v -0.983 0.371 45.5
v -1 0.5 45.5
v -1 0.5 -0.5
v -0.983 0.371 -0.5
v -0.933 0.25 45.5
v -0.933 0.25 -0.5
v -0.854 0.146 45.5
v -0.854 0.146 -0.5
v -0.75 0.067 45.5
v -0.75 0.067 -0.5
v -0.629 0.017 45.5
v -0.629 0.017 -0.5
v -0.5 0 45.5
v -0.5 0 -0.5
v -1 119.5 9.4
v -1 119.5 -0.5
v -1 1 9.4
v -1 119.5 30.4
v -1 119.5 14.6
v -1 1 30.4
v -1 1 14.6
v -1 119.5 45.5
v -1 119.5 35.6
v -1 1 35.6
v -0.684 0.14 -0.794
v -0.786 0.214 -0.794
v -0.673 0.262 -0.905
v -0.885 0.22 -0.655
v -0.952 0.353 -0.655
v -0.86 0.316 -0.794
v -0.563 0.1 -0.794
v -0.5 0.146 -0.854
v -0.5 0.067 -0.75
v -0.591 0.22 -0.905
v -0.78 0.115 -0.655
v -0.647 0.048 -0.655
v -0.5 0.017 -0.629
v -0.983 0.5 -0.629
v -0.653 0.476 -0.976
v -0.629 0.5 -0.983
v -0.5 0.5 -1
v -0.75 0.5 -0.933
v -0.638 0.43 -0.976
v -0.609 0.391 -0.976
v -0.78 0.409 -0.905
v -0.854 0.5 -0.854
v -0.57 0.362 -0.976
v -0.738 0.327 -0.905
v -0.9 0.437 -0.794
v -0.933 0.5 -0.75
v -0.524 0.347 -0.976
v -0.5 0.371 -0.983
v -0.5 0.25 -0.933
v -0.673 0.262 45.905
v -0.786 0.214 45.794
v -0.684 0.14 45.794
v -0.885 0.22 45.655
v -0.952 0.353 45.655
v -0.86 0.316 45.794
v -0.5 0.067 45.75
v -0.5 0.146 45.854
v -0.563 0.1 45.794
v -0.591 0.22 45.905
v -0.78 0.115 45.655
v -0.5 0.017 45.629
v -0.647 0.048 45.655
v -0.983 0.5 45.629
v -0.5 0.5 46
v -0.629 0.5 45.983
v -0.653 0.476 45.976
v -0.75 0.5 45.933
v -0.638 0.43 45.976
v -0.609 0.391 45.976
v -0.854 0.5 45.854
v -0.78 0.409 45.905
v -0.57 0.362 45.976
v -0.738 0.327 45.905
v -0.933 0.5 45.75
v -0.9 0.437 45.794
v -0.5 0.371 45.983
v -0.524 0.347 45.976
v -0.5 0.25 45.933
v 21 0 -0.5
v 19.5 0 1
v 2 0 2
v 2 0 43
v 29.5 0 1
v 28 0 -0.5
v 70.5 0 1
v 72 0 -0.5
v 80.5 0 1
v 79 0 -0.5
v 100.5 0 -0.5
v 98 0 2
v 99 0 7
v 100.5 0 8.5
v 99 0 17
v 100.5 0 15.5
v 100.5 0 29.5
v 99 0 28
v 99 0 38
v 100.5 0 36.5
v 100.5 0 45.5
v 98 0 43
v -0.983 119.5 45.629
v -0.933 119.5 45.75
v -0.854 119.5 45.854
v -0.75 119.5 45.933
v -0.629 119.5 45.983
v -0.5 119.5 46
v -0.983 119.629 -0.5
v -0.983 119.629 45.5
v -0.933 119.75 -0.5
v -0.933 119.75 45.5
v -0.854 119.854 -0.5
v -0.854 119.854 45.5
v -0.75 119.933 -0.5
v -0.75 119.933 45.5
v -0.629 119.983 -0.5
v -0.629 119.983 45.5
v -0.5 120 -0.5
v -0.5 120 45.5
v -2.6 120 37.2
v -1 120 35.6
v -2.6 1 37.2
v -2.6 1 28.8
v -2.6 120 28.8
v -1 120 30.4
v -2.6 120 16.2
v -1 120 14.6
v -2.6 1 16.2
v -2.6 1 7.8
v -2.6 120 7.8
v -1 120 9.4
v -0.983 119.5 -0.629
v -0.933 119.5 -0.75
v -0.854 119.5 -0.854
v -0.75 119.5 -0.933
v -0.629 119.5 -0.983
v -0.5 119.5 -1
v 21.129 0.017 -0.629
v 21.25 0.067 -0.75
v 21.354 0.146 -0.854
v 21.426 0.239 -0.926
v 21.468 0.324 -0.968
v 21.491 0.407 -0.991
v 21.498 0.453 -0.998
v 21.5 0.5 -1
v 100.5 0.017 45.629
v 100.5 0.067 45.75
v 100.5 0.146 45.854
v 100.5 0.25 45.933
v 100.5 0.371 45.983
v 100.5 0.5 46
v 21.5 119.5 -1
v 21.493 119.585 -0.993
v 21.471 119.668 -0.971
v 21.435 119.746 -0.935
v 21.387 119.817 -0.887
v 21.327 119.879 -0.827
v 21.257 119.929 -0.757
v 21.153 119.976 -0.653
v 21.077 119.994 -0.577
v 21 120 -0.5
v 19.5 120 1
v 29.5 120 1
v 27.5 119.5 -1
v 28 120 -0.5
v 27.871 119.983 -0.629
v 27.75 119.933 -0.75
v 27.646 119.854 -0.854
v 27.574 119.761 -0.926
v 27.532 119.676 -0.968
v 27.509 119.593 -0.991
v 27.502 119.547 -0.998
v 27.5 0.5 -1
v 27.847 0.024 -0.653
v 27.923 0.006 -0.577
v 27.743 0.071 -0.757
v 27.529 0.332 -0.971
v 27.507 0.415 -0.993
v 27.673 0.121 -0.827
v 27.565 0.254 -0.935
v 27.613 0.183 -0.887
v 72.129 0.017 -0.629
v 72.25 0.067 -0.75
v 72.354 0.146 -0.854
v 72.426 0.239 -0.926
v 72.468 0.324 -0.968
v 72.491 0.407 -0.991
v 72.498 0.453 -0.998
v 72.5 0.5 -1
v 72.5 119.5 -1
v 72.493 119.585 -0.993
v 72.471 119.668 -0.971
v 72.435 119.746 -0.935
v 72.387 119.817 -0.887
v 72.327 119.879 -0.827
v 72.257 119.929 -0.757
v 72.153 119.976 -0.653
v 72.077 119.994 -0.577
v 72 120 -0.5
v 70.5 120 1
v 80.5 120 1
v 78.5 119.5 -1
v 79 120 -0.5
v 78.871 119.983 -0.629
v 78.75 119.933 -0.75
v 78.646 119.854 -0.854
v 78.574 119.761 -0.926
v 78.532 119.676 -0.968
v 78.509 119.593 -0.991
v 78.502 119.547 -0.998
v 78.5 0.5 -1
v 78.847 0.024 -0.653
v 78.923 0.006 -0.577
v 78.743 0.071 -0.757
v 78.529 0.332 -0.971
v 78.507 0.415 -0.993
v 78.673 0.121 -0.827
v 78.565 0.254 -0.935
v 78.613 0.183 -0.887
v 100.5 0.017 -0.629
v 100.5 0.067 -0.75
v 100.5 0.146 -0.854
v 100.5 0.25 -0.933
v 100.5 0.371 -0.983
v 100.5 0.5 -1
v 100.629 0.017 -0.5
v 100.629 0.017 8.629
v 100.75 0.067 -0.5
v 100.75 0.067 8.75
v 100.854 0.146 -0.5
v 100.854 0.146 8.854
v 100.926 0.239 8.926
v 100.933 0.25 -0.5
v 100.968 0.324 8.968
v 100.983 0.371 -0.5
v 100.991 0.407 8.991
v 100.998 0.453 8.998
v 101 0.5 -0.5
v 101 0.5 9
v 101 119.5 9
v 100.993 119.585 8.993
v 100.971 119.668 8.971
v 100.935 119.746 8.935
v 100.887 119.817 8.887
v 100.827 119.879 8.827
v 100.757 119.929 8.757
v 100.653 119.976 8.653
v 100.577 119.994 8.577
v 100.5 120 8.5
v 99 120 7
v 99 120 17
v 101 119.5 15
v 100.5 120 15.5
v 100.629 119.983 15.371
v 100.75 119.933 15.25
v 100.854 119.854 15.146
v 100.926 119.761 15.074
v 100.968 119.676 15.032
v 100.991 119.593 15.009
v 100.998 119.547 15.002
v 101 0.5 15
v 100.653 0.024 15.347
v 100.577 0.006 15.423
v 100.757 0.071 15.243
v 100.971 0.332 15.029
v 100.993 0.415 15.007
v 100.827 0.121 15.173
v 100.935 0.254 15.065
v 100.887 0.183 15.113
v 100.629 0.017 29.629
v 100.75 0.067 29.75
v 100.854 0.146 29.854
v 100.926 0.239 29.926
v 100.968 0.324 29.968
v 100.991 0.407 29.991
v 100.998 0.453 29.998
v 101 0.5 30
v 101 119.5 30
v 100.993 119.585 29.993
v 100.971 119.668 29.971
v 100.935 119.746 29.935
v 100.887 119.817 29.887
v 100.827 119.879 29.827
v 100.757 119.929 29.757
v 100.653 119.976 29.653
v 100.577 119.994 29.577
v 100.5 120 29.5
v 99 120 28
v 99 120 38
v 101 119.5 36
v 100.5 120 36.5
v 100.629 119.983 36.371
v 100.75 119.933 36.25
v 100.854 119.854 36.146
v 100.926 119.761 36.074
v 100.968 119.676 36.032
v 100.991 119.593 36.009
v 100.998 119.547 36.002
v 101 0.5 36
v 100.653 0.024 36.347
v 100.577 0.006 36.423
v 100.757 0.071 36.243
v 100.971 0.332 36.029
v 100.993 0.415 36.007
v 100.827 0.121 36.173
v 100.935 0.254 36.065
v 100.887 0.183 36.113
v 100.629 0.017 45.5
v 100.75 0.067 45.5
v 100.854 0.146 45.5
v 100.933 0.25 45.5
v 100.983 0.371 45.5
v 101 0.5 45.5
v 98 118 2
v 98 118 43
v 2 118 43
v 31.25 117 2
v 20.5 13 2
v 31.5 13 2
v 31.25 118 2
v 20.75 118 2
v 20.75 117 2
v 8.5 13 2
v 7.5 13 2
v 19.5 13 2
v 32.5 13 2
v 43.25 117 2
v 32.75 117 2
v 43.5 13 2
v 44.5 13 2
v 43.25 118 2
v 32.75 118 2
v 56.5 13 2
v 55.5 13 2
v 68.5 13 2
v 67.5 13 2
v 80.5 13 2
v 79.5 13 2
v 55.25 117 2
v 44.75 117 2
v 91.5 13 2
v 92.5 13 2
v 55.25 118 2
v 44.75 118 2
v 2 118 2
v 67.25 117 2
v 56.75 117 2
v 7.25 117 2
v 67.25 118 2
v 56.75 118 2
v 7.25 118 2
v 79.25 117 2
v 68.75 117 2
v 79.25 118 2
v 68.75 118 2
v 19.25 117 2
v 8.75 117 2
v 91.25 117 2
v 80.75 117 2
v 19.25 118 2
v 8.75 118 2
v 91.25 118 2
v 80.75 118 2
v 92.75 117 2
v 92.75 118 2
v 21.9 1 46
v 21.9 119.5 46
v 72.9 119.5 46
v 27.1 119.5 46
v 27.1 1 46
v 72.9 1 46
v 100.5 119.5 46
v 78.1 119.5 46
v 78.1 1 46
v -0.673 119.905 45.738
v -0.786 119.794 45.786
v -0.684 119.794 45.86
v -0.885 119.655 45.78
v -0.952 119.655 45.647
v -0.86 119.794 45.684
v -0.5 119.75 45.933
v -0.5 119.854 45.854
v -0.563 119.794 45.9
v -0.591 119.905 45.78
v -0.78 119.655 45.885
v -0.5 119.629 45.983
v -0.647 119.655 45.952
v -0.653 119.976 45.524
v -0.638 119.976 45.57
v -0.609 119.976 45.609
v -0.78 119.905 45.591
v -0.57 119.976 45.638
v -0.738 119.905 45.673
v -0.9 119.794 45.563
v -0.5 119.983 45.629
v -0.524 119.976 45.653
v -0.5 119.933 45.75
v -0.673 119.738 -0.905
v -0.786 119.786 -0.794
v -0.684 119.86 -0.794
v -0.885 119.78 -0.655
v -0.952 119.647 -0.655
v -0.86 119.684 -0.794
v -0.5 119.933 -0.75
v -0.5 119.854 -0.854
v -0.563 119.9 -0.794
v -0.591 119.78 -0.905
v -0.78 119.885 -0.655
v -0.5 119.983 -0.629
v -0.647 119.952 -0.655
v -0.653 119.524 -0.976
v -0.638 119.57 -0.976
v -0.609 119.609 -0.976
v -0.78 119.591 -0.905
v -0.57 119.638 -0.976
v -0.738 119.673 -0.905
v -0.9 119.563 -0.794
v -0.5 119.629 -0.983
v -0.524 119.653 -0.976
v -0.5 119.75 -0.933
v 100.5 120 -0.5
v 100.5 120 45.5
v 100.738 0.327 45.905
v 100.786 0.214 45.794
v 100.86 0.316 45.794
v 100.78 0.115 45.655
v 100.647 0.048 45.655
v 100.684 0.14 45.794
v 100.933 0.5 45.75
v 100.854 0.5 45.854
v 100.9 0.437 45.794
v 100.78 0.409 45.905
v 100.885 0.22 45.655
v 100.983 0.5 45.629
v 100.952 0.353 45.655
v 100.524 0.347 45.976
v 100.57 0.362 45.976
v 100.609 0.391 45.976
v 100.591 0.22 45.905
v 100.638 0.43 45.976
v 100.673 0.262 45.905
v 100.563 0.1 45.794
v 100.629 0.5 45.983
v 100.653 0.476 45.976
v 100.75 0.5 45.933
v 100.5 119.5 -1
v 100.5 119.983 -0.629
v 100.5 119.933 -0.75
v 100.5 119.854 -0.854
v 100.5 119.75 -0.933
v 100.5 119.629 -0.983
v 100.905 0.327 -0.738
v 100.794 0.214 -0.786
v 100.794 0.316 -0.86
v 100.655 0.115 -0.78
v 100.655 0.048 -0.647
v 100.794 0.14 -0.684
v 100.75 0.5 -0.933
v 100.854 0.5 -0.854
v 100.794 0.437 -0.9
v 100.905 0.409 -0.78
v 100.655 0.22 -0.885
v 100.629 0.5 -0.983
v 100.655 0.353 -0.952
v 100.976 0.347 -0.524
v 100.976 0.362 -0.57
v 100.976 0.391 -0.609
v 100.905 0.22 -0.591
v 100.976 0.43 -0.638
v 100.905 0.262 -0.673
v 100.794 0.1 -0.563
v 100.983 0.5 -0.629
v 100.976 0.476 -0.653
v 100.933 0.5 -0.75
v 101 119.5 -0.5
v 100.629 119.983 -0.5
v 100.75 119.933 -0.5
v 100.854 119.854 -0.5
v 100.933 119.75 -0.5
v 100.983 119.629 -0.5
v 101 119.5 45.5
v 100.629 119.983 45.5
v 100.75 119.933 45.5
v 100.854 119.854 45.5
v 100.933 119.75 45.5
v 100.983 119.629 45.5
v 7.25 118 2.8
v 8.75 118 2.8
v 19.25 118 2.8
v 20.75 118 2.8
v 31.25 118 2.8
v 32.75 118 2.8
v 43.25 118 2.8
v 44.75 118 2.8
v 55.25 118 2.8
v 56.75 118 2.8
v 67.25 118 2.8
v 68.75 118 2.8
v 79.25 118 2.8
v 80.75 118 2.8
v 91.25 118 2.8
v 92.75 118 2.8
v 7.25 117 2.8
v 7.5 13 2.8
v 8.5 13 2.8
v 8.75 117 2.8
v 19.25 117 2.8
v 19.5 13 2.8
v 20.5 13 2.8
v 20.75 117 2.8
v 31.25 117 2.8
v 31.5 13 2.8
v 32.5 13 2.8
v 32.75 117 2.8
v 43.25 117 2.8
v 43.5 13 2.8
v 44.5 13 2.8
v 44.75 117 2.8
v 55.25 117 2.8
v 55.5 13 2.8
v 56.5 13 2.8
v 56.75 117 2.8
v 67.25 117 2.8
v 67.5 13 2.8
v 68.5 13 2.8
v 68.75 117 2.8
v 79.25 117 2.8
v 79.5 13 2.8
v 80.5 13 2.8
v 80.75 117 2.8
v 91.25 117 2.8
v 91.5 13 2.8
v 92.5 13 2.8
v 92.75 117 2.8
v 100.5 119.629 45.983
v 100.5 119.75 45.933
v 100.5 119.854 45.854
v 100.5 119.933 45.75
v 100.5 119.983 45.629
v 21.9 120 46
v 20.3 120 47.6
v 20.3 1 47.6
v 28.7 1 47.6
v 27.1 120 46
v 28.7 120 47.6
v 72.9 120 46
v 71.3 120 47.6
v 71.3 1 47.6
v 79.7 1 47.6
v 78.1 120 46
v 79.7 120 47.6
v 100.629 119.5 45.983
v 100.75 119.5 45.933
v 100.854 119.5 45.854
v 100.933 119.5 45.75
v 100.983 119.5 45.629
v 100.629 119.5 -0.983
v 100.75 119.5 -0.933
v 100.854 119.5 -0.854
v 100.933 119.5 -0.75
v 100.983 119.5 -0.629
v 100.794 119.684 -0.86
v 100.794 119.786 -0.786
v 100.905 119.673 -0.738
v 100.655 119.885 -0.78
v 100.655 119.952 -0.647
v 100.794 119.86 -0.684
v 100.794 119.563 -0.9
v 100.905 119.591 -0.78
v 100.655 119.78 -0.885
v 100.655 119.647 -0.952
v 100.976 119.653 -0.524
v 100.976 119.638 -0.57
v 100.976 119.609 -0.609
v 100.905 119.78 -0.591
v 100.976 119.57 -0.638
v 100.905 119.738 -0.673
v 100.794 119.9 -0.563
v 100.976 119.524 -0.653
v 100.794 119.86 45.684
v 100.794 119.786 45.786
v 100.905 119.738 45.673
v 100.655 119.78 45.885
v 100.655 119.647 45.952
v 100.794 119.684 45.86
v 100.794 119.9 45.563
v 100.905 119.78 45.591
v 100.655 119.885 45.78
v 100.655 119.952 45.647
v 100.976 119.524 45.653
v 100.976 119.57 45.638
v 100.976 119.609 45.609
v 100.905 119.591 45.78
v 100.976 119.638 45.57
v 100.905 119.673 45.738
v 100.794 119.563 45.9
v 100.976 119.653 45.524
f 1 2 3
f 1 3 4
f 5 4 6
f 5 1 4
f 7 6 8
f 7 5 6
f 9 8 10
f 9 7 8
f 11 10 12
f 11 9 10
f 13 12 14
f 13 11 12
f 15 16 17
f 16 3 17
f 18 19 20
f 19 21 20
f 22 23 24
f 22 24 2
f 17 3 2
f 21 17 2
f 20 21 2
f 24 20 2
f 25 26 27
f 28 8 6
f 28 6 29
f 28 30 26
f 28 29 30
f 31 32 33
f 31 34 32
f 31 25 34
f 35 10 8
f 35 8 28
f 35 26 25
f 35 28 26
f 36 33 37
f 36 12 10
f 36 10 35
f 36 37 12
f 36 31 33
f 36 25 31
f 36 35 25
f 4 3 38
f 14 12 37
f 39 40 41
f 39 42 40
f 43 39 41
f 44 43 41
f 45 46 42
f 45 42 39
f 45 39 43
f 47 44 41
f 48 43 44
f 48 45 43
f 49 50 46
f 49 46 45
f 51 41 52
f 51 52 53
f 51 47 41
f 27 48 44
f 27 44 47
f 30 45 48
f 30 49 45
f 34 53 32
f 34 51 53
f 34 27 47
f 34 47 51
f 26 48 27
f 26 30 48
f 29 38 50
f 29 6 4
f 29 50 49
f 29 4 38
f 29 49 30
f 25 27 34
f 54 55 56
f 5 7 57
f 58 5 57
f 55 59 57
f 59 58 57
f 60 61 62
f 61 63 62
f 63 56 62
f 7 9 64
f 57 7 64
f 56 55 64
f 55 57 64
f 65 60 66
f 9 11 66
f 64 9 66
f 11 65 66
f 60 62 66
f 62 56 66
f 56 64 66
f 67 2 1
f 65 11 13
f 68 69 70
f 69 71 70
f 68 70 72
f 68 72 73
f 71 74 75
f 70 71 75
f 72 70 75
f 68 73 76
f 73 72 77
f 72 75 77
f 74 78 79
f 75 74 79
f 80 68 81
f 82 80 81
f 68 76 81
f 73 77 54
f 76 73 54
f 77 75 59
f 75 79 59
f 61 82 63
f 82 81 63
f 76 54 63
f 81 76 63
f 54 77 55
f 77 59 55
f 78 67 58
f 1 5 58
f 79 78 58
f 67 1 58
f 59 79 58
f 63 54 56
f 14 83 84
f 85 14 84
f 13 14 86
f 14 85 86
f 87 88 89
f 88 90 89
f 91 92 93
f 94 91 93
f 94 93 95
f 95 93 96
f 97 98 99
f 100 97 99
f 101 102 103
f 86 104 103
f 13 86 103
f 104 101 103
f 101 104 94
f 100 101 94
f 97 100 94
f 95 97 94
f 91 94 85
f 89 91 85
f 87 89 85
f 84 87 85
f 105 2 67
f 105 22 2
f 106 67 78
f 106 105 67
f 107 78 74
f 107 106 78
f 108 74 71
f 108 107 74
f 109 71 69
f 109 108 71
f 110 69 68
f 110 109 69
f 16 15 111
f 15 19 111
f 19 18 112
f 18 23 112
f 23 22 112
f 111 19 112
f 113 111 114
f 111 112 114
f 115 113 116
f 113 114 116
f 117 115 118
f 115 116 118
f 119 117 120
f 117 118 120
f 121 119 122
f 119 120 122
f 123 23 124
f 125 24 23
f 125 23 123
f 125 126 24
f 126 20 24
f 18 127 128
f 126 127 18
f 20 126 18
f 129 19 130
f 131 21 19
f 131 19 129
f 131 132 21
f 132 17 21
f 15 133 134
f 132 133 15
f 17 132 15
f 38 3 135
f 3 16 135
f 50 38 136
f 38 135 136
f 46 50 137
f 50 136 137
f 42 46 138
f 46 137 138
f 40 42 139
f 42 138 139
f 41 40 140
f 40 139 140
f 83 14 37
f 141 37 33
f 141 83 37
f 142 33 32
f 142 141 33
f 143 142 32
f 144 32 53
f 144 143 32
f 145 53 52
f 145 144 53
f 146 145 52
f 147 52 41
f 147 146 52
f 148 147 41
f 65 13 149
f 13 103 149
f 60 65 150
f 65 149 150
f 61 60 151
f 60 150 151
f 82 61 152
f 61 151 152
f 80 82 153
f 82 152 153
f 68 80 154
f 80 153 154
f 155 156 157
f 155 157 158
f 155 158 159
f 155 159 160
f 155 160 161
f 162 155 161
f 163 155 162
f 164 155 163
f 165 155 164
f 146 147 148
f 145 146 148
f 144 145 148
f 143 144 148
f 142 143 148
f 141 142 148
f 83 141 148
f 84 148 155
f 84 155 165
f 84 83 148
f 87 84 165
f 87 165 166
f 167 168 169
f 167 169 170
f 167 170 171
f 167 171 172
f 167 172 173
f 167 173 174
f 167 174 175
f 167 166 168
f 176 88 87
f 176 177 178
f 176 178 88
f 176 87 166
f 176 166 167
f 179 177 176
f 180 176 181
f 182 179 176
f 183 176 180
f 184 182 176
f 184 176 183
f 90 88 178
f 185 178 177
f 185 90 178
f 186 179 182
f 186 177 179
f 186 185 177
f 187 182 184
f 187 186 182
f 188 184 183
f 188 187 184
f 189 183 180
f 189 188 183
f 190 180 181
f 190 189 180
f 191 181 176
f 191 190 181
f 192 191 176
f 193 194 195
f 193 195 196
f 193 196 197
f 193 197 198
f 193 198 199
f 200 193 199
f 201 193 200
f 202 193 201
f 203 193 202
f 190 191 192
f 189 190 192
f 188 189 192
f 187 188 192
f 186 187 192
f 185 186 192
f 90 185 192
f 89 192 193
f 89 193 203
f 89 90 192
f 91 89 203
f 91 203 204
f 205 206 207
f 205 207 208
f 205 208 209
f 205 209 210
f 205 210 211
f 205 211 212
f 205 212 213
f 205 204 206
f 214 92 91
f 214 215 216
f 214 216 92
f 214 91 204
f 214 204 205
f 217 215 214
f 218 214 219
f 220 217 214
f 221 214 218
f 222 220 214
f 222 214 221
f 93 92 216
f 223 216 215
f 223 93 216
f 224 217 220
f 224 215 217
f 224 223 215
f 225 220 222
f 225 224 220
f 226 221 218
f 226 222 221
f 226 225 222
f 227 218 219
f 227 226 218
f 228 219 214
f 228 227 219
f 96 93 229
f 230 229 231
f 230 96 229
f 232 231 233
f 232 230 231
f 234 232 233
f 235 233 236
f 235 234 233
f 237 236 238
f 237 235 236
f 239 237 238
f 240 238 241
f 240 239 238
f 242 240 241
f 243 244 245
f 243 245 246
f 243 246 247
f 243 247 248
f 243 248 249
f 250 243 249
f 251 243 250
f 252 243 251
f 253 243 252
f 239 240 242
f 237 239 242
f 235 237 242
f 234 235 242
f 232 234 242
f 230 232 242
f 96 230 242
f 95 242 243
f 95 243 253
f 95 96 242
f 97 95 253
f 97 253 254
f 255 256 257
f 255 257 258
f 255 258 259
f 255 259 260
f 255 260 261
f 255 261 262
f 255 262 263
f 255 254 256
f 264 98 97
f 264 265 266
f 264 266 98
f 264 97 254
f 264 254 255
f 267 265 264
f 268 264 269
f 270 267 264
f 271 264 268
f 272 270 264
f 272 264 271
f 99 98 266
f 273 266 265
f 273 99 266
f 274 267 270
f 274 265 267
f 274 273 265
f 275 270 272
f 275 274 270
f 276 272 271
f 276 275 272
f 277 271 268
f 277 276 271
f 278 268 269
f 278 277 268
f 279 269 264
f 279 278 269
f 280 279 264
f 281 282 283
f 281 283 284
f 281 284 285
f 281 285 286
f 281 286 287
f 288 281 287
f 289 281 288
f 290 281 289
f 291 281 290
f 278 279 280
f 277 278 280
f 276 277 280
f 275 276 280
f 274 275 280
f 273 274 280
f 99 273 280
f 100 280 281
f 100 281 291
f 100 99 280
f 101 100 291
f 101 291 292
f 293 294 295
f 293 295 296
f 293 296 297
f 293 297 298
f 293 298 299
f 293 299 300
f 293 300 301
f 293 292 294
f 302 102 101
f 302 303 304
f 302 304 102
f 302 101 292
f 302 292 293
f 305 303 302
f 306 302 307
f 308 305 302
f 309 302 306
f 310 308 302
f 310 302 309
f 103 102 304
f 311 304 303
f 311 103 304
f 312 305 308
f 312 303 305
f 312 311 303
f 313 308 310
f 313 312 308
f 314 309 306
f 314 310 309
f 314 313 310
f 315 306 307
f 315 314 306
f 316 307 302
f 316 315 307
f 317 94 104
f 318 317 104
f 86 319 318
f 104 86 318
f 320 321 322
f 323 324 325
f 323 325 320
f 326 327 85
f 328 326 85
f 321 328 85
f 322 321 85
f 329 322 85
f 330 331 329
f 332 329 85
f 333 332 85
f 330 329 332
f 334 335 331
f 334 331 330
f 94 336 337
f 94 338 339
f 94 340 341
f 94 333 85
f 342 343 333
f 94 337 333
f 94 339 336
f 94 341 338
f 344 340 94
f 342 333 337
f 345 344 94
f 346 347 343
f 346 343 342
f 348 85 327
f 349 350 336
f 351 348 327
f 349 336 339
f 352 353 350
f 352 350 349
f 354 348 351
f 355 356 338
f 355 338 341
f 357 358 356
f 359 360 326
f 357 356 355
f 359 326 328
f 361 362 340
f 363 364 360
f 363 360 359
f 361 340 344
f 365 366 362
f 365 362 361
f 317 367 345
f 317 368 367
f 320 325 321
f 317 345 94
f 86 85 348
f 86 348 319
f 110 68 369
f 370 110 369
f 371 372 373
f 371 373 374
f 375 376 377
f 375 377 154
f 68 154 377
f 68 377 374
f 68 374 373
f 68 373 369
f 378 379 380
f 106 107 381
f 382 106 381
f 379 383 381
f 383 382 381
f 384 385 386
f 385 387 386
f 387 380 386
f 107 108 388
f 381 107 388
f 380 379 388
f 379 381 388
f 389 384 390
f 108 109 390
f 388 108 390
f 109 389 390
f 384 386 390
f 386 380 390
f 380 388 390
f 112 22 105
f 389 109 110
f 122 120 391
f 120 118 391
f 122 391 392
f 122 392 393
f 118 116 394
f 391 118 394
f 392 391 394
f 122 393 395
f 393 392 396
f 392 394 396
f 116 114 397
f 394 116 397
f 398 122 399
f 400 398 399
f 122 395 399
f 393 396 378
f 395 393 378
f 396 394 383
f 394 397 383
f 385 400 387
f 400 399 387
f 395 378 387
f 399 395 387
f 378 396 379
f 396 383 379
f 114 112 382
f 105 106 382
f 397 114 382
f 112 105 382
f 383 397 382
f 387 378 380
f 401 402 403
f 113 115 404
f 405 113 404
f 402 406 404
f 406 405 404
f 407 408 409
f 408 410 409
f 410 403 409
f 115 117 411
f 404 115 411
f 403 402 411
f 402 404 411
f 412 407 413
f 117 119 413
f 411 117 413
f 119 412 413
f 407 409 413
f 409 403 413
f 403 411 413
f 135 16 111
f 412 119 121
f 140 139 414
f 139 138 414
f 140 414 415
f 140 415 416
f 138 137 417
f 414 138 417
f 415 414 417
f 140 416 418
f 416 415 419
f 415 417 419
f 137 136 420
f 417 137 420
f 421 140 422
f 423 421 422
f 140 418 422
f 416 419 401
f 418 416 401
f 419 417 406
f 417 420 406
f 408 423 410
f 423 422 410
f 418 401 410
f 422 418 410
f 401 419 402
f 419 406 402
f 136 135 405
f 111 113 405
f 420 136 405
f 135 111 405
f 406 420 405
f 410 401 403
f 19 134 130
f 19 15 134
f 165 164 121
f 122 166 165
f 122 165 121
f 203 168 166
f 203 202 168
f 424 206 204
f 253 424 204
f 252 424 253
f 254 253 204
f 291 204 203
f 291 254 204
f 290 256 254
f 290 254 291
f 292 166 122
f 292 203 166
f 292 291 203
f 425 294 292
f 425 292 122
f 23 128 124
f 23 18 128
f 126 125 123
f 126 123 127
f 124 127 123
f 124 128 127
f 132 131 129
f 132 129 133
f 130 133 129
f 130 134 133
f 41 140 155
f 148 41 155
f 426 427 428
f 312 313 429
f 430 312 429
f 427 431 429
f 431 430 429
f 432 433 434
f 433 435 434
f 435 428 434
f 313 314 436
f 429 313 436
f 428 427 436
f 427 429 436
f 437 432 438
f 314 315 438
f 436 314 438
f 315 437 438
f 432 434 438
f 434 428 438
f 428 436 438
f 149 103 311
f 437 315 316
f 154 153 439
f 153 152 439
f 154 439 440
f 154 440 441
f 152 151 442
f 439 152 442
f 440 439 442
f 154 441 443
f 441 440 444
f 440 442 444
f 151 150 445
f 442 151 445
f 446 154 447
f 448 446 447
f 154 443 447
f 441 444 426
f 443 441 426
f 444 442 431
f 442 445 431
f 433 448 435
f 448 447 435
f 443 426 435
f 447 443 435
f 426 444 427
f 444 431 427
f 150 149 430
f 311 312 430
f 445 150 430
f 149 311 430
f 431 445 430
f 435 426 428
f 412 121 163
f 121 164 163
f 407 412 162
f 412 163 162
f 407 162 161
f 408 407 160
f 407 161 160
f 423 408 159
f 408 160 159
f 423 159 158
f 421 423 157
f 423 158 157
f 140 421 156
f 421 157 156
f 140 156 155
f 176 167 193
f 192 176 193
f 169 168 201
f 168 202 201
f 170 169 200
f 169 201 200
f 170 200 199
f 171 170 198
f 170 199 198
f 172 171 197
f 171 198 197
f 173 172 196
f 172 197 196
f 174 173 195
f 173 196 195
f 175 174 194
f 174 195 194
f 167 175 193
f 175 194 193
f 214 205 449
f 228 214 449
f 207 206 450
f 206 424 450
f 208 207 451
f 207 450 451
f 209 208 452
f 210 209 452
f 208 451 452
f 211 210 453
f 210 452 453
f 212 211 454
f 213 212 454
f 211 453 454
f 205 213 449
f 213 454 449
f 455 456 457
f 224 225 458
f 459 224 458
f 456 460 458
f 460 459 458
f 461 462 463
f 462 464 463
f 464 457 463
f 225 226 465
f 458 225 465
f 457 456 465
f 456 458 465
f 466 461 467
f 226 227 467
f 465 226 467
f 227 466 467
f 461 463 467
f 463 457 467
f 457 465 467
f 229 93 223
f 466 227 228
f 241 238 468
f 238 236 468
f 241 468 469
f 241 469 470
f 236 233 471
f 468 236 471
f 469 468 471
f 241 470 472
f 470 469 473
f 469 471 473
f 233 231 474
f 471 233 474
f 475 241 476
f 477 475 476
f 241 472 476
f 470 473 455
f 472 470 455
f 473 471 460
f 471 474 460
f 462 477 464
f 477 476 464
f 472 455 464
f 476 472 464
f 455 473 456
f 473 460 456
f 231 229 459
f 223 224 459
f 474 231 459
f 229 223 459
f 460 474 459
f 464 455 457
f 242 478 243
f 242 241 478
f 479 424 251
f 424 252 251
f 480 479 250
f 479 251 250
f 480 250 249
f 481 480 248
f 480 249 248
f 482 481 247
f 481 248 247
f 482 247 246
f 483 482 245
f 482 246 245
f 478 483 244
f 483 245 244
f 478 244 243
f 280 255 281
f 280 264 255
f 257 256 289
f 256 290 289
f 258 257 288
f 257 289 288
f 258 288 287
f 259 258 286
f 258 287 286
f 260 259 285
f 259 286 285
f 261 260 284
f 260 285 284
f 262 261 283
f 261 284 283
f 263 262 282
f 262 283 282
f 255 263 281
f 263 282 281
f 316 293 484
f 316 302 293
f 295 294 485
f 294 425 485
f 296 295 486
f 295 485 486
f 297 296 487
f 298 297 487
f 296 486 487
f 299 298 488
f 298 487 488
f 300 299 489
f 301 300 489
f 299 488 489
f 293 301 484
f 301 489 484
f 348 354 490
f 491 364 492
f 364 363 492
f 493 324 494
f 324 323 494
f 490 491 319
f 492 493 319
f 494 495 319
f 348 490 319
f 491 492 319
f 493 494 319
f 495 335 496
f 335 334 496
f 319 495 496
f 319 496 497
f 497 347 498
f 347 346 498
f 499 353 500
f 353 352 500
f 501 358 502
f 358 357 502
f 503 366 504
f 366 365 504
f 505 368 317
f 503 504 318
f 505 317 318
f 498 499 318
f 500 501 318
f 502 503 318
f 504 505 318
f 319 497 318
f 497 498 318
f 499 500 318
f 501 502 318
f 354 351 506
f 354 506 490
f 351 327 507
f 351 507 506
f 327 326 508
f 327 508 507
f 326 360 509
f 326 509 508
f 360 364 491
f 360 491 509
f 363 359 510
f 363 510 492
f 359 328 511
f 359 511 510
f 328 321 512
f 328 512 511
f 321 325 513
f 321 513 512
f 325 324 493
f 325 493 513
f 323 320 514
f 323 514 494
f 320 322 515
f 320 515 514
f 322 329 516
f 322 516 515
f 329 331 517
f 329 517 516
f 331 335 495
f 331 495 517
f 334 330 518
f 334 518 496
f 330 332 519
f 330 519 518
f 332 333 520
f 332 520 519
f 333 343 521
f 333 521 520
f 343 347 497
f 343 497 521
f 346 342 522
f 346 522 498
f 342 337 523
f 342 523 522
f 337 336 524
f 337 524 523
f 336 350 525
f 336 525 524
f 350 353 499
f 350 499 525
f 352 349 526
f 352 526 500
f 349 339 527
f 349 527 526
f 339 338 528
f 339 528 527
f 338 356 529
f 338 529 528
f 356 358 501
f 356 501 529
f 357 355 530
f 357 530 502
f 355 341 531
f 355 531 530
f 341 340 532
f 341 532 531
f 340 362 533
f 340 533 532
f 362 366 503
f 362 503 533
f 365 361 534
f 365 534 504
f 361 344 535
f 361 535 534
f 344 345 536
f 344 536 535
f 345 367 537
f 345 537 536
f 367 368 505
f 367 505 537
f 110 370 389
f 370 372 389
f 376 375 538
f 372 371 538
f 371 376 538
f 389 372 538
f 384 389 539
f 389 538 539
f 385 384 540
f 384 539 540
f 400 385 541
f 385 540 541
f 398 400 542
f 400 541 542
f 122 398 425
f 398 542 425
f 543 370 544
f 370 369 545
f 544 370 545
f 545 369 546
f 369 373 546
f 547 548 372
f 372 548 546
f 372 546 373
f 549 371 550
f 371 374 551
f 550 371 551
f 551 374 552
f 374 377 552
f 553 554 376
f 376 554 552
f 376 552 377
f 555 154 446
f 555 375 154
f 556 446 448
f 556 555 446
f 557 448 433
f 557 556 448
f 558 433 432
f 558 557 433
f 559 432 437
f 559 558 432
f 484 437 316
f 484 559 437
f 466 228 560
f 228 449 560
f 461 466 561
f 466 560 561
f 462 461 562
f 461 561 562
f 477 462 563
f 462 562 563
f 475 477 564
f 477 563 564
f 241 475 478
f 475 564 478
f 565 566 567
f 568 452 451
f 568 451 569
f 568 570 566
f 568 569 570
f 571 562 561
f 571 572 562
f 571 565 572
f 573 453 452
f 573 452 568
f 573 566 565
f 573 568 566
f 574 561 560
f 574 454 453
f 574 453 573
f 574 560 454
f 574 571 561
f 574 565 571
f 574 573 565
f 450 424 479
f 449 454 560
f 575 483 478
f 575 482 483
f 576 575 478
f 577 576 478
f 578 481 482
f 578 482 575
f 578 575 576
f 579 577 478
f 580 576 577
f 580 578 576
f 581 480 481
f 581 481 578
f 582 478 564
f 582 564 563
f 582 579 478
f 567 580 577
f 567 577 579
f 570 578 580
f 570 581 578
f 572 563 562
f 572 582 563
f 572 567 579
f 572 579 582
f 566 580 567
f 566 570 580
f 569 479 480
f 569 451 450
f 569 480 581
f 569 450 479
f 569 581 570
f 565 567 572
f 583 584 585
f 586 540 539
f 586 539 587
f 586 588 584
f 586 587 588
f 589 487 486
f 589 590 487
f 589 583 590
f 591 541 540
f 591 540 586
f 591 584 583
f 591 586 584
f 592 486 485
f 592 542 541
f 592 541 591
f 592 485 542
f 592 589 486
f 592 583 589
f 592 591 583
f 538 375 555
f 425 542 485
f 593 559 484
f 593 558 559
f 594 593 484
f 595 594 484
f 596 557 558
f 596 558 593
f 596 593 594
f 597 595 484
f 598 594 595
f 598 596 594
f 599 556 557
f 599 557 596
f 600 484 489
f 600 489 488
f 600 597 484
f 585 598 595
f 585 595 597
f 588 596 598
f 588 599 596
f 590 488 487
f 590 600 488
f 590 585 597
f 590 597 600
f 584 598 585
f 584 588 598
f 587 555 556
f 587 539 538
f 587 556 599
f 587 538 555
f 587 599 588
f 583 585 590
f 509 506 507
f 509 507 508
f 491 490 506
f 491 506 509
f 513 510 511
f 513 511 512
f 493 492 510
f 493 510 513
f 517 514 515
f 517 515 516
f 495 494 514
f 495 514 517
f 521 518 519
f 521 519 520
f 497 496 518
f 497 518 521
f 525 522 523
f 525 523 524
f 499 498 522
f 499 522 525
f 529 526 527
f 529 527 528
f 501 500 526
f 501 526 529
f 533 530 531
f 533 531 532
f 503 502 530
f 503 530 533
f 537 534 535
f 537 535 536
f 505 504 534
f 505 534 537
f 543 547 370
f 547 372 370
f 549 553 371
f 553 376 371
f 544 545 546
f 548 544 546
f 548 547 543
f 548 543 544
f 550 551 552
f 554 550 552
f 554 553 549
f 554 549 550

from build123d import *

# Parameters (mm, degrees)
EXTRUDE004_DEPTH                     = 120
EXTRUDE004_ONTO_SKETCH004_ROLL_ANGLE = 90
ARRAY005_X_COUNT                     = 2
ARRAY005_X_PITCH                     = 51
EXTRUDE001_DEPTH                     = 120
EXTRUDE001_ONTO_SKETCH001_ROLL_ANGLE = 90
ARRAY003_Z_COUNT                     = 2
ARRAY003_Z_PITCH                     = 21
BOX001_W                             = 96
BOX001_H                             = 118
BOX001_DEPTH                         = 41
BOX_W                                = 102
BOX_H                                = 120
BOX_DEPTH                            = 47
FILLET_R                             = 0.5
EXTRUDE003_DEPTH                     = 119
EXTRUDE003_ONTO_SKETCH003_ROLL_ANGLE = 90
ARRAY_X_COUNT                        = 2
ARRAY_X_PITCH                        = 51
EXTRUDE002_DEPTH                     = 119
EXTRUDE002_ONTO_SKETCH002_ROLL_ANGLE = 90
ARRAY004_Z_COUNT                     = 2
ARRAY004_Z_PITCH                     = 21
EXTRUDE_DEPTH                        = 0.8
ARRAY002_X_COUNT                     = 8
ARRAY002_X_PITCH                     = 12


with BuildPart() as bottomsideguidearray:
    # Sketch004 as drawn → Extrude004 (new)
    with BuildSketch(Plane.XY):
        Polygon((-6, 1), (4, 1), (2, -1), (-4, -1), align=None)
    extrude(amount=-EXTRUDE004_DEPTH)


with BuildPart() as bottomsideguidearray_1:
    # Extrude004 onto Sketch004 roll: moved
    add(bottomsideguidearray.part.rotate(Axis((0, 0, 0), (1, 0, 0)), EXTRUDE004_ONTO_SKETCH004_ROLL_ANGLE))


with BuildPart() as bottomsideguidearray_2:
    # Extrude004 onto Sketch004 placement: moved
    add(bottomsideguidearray_1.part)


with BuildPart() as bottomsideguidearray_3:
    # Extrude004 placement: moved
    add(bottomsideguidearray_2.part.moved(Location((25.5, 0, 0))))

    # Array005 X: BottomSideGuideArray ×2


with BuildPart() as bottomsideguidearray_4:
    add(bottomsideguidearray_3.part)
    with Locations(*[(i * ARRAY005_X_PITCH, 0, 0) for i in range(1, ARRAY005_X_COUNT)]):
        add(bottomsideguidearray_3.part)


with BuildPart() as guidegaps:
    # Sketch001 as drawn → Extrude001 (new)
    with BuildSketch(Plane.XY):
        Polygon((0, 0), (0, 10), (2, 8), (2, 2), align=None)
    extrude(amount=-EXTRUDE001_DEPTH)


with BuildPart() as guidegaps_1:
    # Extrude001 onto Sketch001 roll: moved
    add(guidegaps.part.rotate(Axis((0, 0, 0), (1, 0, 0)), EXTRUDE001_ONTO_SKETCH001_ROLL_ANGLE))


with BuildPart() as guidegaps_2:
    # Extrude001 onto Sketch001 placement: moved
    add(guidegaps_1.part.moved(Location((99, 0, 7))))

    # Array003 Z: GuideGaps ×2


with BuildPart() as guidegaps_3:
    add(guidegaps_2.part)
    with Locations(*[(0, 0, i * ARRAY003_Z_PITCH) for i in range(1, ARRAY003_Z_COUNT)]):
        add(guidegaps_2.part)

    # Fusion003: union BottomSideGuideArray
    add(bottomsideguidearray_4.part)


with BuildPart() as inner_box:
    # Box001 → Box001 (new body)
    with BuildSketch(Plane(origin=(2, 0, 2), x_dir=(1, 0, 0), z_dir=(0, 0, 1))):
        with Locations((48, 59)):
            Rectangle(BOX001_W, BOX001_H)
    extrude(amount=BOX001_DEPTH)


with BuildPart() as filletedcase:
    # Box → Box (new body)
    with BuildSketch(Plane(origin=(-1, 0, -1), x_dir=(1, 0, 0), z_dir=(0, 0, 1))):
        with Locations((51, 60)):
            Rectangle(BOX_W, BOX_H)
    extrude(amount=BOX_DEPTH)

    # Cut: cut Inner Box
    add(inner_box.part, mode=Mode.SUBTRACT)

    # Fillet
    fillet_edges = [filletedcase.edges().sort_by_distance(p)[0] for p in [
        (-1, 0, 22.5),
        (-1, 60, 46),
        (-1, 120, 22.5),
        (-1, 60, -1),
        (50, 0, -1),
        (101, 0, 22.5),
        (50, 0, 46),
        (50, 120, 46),
        (101, 60, 46),
        (50, 120, -1),
        (101, 120, 22.5),
        (101, 60, -1),
    ]]
    fillet(fillet_edges, radius=FILLET_R)


with BuildPart() as topsideguidearray:
    # Sketch003 as drawn → Extrude003 (new)
    with BuildSketch(Plane.XY):
        Polygon((-5.2, 47.6), (3.2, 47.6), (1.6, 46), (-3.6, 46), align=None)
    extrude(amount=-EXTRUDE003_DEPTH)


with BuildPart() as topsideguidearray_1:
    # Extrude003 onto Sketch003 roll: moved
    add(topsideguidearray.part.rotate(Axis((0, 0, 0), (1, 0, 0)), EXTRUDE003_ONTO_SKETCH003_ROLL_ANGLE))


with BuildPart() as topsideguidearray_2:
    # Extrude003 onto Sketch003 placement: moved
    add(topsideguidearray_1.part)


with BuildPart() as topsideguidearray_3:
    # Extrude003 placement: moved
    add(topsideguidearray_2.part.moved(Location((25.5, 1, 0))))

    # Array X: TopSideGuideArray ×2


with BuildPart() as topsideguidearray_4:
    add(topsideguidearray_3.part)
    with Locations(*[(i * ARRAY_X_PITCH, 0, 0) for i in range(1, ARRAY_X_COUNT)]):
        add(topsideguidearray_3.part)


with BuildPart() as guiderods:
    # Sketch002 as drawn → Extrude002 (new)
    with BuildSketch(Plane.XY):
        Polygon((0.4, 9.2), (0.4, 0.8), (2, 2.4), (2, 7.6), align=None)
    extrude(amount=-EXTRUDE002_DEPTH)


with BuildPart() as guiderods_1:
    # Extrude002 onto Sketch002 roll: moved
    add(guiderods.part.rotate(Axis((0, 0, 0), (1, 0, 0)), EXTRUDE002_ONTO_SKETCH002_ROLL_ANGLE))


with BuildPart() as guiderods_2:
    # Extrude002 onto Sketch002 placement: moved
    add(guiderods_1.part.moved(Location((-1, 0, 7))))


with BuildPart() as guiderods_3:
    # Extrude002 placement: moved
    add(guiderods_2.part.moved(Location((-2, 1, 0))))

    # Array004 Z: GuideRods ×2


with BuildPart() as guiderods_4:
    add(guiderods_3.part)
    with Locations(*[(0, 0, i * ARRAY004_Z_PITCH) for i in range(1, ARRAY004_Z_COUNT)]):
        add(guiderods_3.part)

    # Fusion002: union TopSideGuideArray
    add(topsideguidearray_4.part)


with BuildPart() as finalcabinet:
    # Sketch → Extrude (new body)
    with BuildSketch(Plane.XY):
        Polygon((0.5, 0), (0.25, 104), (0.25, 105), (1.75, 105), (1.75, 104), (1.5, 0), align=None)
    extrude(amount=EXTRUDE_DEPTH)

    # Array002 X: FinalCabinet ×8


with BuildPart() as finalcabinet_1:
    add(finalcabinet.part)
    with Locations(*[(i * ARRAY002_X_PITCH, 0, 0) for i in range(1, ARRAY002_X_COUNT)]):
        add(finalcabinet.part)


with BuildPart() as finalcabinet_2:
    # Array002 placement: moved
    add(finalcabinet_1.part.moved(Location((7, 13, 2))))

    # Fusion: union FilletedCase, GuideRods
    add(filletedcase.part)
    add(guiderods_4.part)

    # Cut001: cut GuideGaps
    add(guidegaps_3.part, mode=Mode.SUBTRACT)


solid = finalcabinet_2.part
